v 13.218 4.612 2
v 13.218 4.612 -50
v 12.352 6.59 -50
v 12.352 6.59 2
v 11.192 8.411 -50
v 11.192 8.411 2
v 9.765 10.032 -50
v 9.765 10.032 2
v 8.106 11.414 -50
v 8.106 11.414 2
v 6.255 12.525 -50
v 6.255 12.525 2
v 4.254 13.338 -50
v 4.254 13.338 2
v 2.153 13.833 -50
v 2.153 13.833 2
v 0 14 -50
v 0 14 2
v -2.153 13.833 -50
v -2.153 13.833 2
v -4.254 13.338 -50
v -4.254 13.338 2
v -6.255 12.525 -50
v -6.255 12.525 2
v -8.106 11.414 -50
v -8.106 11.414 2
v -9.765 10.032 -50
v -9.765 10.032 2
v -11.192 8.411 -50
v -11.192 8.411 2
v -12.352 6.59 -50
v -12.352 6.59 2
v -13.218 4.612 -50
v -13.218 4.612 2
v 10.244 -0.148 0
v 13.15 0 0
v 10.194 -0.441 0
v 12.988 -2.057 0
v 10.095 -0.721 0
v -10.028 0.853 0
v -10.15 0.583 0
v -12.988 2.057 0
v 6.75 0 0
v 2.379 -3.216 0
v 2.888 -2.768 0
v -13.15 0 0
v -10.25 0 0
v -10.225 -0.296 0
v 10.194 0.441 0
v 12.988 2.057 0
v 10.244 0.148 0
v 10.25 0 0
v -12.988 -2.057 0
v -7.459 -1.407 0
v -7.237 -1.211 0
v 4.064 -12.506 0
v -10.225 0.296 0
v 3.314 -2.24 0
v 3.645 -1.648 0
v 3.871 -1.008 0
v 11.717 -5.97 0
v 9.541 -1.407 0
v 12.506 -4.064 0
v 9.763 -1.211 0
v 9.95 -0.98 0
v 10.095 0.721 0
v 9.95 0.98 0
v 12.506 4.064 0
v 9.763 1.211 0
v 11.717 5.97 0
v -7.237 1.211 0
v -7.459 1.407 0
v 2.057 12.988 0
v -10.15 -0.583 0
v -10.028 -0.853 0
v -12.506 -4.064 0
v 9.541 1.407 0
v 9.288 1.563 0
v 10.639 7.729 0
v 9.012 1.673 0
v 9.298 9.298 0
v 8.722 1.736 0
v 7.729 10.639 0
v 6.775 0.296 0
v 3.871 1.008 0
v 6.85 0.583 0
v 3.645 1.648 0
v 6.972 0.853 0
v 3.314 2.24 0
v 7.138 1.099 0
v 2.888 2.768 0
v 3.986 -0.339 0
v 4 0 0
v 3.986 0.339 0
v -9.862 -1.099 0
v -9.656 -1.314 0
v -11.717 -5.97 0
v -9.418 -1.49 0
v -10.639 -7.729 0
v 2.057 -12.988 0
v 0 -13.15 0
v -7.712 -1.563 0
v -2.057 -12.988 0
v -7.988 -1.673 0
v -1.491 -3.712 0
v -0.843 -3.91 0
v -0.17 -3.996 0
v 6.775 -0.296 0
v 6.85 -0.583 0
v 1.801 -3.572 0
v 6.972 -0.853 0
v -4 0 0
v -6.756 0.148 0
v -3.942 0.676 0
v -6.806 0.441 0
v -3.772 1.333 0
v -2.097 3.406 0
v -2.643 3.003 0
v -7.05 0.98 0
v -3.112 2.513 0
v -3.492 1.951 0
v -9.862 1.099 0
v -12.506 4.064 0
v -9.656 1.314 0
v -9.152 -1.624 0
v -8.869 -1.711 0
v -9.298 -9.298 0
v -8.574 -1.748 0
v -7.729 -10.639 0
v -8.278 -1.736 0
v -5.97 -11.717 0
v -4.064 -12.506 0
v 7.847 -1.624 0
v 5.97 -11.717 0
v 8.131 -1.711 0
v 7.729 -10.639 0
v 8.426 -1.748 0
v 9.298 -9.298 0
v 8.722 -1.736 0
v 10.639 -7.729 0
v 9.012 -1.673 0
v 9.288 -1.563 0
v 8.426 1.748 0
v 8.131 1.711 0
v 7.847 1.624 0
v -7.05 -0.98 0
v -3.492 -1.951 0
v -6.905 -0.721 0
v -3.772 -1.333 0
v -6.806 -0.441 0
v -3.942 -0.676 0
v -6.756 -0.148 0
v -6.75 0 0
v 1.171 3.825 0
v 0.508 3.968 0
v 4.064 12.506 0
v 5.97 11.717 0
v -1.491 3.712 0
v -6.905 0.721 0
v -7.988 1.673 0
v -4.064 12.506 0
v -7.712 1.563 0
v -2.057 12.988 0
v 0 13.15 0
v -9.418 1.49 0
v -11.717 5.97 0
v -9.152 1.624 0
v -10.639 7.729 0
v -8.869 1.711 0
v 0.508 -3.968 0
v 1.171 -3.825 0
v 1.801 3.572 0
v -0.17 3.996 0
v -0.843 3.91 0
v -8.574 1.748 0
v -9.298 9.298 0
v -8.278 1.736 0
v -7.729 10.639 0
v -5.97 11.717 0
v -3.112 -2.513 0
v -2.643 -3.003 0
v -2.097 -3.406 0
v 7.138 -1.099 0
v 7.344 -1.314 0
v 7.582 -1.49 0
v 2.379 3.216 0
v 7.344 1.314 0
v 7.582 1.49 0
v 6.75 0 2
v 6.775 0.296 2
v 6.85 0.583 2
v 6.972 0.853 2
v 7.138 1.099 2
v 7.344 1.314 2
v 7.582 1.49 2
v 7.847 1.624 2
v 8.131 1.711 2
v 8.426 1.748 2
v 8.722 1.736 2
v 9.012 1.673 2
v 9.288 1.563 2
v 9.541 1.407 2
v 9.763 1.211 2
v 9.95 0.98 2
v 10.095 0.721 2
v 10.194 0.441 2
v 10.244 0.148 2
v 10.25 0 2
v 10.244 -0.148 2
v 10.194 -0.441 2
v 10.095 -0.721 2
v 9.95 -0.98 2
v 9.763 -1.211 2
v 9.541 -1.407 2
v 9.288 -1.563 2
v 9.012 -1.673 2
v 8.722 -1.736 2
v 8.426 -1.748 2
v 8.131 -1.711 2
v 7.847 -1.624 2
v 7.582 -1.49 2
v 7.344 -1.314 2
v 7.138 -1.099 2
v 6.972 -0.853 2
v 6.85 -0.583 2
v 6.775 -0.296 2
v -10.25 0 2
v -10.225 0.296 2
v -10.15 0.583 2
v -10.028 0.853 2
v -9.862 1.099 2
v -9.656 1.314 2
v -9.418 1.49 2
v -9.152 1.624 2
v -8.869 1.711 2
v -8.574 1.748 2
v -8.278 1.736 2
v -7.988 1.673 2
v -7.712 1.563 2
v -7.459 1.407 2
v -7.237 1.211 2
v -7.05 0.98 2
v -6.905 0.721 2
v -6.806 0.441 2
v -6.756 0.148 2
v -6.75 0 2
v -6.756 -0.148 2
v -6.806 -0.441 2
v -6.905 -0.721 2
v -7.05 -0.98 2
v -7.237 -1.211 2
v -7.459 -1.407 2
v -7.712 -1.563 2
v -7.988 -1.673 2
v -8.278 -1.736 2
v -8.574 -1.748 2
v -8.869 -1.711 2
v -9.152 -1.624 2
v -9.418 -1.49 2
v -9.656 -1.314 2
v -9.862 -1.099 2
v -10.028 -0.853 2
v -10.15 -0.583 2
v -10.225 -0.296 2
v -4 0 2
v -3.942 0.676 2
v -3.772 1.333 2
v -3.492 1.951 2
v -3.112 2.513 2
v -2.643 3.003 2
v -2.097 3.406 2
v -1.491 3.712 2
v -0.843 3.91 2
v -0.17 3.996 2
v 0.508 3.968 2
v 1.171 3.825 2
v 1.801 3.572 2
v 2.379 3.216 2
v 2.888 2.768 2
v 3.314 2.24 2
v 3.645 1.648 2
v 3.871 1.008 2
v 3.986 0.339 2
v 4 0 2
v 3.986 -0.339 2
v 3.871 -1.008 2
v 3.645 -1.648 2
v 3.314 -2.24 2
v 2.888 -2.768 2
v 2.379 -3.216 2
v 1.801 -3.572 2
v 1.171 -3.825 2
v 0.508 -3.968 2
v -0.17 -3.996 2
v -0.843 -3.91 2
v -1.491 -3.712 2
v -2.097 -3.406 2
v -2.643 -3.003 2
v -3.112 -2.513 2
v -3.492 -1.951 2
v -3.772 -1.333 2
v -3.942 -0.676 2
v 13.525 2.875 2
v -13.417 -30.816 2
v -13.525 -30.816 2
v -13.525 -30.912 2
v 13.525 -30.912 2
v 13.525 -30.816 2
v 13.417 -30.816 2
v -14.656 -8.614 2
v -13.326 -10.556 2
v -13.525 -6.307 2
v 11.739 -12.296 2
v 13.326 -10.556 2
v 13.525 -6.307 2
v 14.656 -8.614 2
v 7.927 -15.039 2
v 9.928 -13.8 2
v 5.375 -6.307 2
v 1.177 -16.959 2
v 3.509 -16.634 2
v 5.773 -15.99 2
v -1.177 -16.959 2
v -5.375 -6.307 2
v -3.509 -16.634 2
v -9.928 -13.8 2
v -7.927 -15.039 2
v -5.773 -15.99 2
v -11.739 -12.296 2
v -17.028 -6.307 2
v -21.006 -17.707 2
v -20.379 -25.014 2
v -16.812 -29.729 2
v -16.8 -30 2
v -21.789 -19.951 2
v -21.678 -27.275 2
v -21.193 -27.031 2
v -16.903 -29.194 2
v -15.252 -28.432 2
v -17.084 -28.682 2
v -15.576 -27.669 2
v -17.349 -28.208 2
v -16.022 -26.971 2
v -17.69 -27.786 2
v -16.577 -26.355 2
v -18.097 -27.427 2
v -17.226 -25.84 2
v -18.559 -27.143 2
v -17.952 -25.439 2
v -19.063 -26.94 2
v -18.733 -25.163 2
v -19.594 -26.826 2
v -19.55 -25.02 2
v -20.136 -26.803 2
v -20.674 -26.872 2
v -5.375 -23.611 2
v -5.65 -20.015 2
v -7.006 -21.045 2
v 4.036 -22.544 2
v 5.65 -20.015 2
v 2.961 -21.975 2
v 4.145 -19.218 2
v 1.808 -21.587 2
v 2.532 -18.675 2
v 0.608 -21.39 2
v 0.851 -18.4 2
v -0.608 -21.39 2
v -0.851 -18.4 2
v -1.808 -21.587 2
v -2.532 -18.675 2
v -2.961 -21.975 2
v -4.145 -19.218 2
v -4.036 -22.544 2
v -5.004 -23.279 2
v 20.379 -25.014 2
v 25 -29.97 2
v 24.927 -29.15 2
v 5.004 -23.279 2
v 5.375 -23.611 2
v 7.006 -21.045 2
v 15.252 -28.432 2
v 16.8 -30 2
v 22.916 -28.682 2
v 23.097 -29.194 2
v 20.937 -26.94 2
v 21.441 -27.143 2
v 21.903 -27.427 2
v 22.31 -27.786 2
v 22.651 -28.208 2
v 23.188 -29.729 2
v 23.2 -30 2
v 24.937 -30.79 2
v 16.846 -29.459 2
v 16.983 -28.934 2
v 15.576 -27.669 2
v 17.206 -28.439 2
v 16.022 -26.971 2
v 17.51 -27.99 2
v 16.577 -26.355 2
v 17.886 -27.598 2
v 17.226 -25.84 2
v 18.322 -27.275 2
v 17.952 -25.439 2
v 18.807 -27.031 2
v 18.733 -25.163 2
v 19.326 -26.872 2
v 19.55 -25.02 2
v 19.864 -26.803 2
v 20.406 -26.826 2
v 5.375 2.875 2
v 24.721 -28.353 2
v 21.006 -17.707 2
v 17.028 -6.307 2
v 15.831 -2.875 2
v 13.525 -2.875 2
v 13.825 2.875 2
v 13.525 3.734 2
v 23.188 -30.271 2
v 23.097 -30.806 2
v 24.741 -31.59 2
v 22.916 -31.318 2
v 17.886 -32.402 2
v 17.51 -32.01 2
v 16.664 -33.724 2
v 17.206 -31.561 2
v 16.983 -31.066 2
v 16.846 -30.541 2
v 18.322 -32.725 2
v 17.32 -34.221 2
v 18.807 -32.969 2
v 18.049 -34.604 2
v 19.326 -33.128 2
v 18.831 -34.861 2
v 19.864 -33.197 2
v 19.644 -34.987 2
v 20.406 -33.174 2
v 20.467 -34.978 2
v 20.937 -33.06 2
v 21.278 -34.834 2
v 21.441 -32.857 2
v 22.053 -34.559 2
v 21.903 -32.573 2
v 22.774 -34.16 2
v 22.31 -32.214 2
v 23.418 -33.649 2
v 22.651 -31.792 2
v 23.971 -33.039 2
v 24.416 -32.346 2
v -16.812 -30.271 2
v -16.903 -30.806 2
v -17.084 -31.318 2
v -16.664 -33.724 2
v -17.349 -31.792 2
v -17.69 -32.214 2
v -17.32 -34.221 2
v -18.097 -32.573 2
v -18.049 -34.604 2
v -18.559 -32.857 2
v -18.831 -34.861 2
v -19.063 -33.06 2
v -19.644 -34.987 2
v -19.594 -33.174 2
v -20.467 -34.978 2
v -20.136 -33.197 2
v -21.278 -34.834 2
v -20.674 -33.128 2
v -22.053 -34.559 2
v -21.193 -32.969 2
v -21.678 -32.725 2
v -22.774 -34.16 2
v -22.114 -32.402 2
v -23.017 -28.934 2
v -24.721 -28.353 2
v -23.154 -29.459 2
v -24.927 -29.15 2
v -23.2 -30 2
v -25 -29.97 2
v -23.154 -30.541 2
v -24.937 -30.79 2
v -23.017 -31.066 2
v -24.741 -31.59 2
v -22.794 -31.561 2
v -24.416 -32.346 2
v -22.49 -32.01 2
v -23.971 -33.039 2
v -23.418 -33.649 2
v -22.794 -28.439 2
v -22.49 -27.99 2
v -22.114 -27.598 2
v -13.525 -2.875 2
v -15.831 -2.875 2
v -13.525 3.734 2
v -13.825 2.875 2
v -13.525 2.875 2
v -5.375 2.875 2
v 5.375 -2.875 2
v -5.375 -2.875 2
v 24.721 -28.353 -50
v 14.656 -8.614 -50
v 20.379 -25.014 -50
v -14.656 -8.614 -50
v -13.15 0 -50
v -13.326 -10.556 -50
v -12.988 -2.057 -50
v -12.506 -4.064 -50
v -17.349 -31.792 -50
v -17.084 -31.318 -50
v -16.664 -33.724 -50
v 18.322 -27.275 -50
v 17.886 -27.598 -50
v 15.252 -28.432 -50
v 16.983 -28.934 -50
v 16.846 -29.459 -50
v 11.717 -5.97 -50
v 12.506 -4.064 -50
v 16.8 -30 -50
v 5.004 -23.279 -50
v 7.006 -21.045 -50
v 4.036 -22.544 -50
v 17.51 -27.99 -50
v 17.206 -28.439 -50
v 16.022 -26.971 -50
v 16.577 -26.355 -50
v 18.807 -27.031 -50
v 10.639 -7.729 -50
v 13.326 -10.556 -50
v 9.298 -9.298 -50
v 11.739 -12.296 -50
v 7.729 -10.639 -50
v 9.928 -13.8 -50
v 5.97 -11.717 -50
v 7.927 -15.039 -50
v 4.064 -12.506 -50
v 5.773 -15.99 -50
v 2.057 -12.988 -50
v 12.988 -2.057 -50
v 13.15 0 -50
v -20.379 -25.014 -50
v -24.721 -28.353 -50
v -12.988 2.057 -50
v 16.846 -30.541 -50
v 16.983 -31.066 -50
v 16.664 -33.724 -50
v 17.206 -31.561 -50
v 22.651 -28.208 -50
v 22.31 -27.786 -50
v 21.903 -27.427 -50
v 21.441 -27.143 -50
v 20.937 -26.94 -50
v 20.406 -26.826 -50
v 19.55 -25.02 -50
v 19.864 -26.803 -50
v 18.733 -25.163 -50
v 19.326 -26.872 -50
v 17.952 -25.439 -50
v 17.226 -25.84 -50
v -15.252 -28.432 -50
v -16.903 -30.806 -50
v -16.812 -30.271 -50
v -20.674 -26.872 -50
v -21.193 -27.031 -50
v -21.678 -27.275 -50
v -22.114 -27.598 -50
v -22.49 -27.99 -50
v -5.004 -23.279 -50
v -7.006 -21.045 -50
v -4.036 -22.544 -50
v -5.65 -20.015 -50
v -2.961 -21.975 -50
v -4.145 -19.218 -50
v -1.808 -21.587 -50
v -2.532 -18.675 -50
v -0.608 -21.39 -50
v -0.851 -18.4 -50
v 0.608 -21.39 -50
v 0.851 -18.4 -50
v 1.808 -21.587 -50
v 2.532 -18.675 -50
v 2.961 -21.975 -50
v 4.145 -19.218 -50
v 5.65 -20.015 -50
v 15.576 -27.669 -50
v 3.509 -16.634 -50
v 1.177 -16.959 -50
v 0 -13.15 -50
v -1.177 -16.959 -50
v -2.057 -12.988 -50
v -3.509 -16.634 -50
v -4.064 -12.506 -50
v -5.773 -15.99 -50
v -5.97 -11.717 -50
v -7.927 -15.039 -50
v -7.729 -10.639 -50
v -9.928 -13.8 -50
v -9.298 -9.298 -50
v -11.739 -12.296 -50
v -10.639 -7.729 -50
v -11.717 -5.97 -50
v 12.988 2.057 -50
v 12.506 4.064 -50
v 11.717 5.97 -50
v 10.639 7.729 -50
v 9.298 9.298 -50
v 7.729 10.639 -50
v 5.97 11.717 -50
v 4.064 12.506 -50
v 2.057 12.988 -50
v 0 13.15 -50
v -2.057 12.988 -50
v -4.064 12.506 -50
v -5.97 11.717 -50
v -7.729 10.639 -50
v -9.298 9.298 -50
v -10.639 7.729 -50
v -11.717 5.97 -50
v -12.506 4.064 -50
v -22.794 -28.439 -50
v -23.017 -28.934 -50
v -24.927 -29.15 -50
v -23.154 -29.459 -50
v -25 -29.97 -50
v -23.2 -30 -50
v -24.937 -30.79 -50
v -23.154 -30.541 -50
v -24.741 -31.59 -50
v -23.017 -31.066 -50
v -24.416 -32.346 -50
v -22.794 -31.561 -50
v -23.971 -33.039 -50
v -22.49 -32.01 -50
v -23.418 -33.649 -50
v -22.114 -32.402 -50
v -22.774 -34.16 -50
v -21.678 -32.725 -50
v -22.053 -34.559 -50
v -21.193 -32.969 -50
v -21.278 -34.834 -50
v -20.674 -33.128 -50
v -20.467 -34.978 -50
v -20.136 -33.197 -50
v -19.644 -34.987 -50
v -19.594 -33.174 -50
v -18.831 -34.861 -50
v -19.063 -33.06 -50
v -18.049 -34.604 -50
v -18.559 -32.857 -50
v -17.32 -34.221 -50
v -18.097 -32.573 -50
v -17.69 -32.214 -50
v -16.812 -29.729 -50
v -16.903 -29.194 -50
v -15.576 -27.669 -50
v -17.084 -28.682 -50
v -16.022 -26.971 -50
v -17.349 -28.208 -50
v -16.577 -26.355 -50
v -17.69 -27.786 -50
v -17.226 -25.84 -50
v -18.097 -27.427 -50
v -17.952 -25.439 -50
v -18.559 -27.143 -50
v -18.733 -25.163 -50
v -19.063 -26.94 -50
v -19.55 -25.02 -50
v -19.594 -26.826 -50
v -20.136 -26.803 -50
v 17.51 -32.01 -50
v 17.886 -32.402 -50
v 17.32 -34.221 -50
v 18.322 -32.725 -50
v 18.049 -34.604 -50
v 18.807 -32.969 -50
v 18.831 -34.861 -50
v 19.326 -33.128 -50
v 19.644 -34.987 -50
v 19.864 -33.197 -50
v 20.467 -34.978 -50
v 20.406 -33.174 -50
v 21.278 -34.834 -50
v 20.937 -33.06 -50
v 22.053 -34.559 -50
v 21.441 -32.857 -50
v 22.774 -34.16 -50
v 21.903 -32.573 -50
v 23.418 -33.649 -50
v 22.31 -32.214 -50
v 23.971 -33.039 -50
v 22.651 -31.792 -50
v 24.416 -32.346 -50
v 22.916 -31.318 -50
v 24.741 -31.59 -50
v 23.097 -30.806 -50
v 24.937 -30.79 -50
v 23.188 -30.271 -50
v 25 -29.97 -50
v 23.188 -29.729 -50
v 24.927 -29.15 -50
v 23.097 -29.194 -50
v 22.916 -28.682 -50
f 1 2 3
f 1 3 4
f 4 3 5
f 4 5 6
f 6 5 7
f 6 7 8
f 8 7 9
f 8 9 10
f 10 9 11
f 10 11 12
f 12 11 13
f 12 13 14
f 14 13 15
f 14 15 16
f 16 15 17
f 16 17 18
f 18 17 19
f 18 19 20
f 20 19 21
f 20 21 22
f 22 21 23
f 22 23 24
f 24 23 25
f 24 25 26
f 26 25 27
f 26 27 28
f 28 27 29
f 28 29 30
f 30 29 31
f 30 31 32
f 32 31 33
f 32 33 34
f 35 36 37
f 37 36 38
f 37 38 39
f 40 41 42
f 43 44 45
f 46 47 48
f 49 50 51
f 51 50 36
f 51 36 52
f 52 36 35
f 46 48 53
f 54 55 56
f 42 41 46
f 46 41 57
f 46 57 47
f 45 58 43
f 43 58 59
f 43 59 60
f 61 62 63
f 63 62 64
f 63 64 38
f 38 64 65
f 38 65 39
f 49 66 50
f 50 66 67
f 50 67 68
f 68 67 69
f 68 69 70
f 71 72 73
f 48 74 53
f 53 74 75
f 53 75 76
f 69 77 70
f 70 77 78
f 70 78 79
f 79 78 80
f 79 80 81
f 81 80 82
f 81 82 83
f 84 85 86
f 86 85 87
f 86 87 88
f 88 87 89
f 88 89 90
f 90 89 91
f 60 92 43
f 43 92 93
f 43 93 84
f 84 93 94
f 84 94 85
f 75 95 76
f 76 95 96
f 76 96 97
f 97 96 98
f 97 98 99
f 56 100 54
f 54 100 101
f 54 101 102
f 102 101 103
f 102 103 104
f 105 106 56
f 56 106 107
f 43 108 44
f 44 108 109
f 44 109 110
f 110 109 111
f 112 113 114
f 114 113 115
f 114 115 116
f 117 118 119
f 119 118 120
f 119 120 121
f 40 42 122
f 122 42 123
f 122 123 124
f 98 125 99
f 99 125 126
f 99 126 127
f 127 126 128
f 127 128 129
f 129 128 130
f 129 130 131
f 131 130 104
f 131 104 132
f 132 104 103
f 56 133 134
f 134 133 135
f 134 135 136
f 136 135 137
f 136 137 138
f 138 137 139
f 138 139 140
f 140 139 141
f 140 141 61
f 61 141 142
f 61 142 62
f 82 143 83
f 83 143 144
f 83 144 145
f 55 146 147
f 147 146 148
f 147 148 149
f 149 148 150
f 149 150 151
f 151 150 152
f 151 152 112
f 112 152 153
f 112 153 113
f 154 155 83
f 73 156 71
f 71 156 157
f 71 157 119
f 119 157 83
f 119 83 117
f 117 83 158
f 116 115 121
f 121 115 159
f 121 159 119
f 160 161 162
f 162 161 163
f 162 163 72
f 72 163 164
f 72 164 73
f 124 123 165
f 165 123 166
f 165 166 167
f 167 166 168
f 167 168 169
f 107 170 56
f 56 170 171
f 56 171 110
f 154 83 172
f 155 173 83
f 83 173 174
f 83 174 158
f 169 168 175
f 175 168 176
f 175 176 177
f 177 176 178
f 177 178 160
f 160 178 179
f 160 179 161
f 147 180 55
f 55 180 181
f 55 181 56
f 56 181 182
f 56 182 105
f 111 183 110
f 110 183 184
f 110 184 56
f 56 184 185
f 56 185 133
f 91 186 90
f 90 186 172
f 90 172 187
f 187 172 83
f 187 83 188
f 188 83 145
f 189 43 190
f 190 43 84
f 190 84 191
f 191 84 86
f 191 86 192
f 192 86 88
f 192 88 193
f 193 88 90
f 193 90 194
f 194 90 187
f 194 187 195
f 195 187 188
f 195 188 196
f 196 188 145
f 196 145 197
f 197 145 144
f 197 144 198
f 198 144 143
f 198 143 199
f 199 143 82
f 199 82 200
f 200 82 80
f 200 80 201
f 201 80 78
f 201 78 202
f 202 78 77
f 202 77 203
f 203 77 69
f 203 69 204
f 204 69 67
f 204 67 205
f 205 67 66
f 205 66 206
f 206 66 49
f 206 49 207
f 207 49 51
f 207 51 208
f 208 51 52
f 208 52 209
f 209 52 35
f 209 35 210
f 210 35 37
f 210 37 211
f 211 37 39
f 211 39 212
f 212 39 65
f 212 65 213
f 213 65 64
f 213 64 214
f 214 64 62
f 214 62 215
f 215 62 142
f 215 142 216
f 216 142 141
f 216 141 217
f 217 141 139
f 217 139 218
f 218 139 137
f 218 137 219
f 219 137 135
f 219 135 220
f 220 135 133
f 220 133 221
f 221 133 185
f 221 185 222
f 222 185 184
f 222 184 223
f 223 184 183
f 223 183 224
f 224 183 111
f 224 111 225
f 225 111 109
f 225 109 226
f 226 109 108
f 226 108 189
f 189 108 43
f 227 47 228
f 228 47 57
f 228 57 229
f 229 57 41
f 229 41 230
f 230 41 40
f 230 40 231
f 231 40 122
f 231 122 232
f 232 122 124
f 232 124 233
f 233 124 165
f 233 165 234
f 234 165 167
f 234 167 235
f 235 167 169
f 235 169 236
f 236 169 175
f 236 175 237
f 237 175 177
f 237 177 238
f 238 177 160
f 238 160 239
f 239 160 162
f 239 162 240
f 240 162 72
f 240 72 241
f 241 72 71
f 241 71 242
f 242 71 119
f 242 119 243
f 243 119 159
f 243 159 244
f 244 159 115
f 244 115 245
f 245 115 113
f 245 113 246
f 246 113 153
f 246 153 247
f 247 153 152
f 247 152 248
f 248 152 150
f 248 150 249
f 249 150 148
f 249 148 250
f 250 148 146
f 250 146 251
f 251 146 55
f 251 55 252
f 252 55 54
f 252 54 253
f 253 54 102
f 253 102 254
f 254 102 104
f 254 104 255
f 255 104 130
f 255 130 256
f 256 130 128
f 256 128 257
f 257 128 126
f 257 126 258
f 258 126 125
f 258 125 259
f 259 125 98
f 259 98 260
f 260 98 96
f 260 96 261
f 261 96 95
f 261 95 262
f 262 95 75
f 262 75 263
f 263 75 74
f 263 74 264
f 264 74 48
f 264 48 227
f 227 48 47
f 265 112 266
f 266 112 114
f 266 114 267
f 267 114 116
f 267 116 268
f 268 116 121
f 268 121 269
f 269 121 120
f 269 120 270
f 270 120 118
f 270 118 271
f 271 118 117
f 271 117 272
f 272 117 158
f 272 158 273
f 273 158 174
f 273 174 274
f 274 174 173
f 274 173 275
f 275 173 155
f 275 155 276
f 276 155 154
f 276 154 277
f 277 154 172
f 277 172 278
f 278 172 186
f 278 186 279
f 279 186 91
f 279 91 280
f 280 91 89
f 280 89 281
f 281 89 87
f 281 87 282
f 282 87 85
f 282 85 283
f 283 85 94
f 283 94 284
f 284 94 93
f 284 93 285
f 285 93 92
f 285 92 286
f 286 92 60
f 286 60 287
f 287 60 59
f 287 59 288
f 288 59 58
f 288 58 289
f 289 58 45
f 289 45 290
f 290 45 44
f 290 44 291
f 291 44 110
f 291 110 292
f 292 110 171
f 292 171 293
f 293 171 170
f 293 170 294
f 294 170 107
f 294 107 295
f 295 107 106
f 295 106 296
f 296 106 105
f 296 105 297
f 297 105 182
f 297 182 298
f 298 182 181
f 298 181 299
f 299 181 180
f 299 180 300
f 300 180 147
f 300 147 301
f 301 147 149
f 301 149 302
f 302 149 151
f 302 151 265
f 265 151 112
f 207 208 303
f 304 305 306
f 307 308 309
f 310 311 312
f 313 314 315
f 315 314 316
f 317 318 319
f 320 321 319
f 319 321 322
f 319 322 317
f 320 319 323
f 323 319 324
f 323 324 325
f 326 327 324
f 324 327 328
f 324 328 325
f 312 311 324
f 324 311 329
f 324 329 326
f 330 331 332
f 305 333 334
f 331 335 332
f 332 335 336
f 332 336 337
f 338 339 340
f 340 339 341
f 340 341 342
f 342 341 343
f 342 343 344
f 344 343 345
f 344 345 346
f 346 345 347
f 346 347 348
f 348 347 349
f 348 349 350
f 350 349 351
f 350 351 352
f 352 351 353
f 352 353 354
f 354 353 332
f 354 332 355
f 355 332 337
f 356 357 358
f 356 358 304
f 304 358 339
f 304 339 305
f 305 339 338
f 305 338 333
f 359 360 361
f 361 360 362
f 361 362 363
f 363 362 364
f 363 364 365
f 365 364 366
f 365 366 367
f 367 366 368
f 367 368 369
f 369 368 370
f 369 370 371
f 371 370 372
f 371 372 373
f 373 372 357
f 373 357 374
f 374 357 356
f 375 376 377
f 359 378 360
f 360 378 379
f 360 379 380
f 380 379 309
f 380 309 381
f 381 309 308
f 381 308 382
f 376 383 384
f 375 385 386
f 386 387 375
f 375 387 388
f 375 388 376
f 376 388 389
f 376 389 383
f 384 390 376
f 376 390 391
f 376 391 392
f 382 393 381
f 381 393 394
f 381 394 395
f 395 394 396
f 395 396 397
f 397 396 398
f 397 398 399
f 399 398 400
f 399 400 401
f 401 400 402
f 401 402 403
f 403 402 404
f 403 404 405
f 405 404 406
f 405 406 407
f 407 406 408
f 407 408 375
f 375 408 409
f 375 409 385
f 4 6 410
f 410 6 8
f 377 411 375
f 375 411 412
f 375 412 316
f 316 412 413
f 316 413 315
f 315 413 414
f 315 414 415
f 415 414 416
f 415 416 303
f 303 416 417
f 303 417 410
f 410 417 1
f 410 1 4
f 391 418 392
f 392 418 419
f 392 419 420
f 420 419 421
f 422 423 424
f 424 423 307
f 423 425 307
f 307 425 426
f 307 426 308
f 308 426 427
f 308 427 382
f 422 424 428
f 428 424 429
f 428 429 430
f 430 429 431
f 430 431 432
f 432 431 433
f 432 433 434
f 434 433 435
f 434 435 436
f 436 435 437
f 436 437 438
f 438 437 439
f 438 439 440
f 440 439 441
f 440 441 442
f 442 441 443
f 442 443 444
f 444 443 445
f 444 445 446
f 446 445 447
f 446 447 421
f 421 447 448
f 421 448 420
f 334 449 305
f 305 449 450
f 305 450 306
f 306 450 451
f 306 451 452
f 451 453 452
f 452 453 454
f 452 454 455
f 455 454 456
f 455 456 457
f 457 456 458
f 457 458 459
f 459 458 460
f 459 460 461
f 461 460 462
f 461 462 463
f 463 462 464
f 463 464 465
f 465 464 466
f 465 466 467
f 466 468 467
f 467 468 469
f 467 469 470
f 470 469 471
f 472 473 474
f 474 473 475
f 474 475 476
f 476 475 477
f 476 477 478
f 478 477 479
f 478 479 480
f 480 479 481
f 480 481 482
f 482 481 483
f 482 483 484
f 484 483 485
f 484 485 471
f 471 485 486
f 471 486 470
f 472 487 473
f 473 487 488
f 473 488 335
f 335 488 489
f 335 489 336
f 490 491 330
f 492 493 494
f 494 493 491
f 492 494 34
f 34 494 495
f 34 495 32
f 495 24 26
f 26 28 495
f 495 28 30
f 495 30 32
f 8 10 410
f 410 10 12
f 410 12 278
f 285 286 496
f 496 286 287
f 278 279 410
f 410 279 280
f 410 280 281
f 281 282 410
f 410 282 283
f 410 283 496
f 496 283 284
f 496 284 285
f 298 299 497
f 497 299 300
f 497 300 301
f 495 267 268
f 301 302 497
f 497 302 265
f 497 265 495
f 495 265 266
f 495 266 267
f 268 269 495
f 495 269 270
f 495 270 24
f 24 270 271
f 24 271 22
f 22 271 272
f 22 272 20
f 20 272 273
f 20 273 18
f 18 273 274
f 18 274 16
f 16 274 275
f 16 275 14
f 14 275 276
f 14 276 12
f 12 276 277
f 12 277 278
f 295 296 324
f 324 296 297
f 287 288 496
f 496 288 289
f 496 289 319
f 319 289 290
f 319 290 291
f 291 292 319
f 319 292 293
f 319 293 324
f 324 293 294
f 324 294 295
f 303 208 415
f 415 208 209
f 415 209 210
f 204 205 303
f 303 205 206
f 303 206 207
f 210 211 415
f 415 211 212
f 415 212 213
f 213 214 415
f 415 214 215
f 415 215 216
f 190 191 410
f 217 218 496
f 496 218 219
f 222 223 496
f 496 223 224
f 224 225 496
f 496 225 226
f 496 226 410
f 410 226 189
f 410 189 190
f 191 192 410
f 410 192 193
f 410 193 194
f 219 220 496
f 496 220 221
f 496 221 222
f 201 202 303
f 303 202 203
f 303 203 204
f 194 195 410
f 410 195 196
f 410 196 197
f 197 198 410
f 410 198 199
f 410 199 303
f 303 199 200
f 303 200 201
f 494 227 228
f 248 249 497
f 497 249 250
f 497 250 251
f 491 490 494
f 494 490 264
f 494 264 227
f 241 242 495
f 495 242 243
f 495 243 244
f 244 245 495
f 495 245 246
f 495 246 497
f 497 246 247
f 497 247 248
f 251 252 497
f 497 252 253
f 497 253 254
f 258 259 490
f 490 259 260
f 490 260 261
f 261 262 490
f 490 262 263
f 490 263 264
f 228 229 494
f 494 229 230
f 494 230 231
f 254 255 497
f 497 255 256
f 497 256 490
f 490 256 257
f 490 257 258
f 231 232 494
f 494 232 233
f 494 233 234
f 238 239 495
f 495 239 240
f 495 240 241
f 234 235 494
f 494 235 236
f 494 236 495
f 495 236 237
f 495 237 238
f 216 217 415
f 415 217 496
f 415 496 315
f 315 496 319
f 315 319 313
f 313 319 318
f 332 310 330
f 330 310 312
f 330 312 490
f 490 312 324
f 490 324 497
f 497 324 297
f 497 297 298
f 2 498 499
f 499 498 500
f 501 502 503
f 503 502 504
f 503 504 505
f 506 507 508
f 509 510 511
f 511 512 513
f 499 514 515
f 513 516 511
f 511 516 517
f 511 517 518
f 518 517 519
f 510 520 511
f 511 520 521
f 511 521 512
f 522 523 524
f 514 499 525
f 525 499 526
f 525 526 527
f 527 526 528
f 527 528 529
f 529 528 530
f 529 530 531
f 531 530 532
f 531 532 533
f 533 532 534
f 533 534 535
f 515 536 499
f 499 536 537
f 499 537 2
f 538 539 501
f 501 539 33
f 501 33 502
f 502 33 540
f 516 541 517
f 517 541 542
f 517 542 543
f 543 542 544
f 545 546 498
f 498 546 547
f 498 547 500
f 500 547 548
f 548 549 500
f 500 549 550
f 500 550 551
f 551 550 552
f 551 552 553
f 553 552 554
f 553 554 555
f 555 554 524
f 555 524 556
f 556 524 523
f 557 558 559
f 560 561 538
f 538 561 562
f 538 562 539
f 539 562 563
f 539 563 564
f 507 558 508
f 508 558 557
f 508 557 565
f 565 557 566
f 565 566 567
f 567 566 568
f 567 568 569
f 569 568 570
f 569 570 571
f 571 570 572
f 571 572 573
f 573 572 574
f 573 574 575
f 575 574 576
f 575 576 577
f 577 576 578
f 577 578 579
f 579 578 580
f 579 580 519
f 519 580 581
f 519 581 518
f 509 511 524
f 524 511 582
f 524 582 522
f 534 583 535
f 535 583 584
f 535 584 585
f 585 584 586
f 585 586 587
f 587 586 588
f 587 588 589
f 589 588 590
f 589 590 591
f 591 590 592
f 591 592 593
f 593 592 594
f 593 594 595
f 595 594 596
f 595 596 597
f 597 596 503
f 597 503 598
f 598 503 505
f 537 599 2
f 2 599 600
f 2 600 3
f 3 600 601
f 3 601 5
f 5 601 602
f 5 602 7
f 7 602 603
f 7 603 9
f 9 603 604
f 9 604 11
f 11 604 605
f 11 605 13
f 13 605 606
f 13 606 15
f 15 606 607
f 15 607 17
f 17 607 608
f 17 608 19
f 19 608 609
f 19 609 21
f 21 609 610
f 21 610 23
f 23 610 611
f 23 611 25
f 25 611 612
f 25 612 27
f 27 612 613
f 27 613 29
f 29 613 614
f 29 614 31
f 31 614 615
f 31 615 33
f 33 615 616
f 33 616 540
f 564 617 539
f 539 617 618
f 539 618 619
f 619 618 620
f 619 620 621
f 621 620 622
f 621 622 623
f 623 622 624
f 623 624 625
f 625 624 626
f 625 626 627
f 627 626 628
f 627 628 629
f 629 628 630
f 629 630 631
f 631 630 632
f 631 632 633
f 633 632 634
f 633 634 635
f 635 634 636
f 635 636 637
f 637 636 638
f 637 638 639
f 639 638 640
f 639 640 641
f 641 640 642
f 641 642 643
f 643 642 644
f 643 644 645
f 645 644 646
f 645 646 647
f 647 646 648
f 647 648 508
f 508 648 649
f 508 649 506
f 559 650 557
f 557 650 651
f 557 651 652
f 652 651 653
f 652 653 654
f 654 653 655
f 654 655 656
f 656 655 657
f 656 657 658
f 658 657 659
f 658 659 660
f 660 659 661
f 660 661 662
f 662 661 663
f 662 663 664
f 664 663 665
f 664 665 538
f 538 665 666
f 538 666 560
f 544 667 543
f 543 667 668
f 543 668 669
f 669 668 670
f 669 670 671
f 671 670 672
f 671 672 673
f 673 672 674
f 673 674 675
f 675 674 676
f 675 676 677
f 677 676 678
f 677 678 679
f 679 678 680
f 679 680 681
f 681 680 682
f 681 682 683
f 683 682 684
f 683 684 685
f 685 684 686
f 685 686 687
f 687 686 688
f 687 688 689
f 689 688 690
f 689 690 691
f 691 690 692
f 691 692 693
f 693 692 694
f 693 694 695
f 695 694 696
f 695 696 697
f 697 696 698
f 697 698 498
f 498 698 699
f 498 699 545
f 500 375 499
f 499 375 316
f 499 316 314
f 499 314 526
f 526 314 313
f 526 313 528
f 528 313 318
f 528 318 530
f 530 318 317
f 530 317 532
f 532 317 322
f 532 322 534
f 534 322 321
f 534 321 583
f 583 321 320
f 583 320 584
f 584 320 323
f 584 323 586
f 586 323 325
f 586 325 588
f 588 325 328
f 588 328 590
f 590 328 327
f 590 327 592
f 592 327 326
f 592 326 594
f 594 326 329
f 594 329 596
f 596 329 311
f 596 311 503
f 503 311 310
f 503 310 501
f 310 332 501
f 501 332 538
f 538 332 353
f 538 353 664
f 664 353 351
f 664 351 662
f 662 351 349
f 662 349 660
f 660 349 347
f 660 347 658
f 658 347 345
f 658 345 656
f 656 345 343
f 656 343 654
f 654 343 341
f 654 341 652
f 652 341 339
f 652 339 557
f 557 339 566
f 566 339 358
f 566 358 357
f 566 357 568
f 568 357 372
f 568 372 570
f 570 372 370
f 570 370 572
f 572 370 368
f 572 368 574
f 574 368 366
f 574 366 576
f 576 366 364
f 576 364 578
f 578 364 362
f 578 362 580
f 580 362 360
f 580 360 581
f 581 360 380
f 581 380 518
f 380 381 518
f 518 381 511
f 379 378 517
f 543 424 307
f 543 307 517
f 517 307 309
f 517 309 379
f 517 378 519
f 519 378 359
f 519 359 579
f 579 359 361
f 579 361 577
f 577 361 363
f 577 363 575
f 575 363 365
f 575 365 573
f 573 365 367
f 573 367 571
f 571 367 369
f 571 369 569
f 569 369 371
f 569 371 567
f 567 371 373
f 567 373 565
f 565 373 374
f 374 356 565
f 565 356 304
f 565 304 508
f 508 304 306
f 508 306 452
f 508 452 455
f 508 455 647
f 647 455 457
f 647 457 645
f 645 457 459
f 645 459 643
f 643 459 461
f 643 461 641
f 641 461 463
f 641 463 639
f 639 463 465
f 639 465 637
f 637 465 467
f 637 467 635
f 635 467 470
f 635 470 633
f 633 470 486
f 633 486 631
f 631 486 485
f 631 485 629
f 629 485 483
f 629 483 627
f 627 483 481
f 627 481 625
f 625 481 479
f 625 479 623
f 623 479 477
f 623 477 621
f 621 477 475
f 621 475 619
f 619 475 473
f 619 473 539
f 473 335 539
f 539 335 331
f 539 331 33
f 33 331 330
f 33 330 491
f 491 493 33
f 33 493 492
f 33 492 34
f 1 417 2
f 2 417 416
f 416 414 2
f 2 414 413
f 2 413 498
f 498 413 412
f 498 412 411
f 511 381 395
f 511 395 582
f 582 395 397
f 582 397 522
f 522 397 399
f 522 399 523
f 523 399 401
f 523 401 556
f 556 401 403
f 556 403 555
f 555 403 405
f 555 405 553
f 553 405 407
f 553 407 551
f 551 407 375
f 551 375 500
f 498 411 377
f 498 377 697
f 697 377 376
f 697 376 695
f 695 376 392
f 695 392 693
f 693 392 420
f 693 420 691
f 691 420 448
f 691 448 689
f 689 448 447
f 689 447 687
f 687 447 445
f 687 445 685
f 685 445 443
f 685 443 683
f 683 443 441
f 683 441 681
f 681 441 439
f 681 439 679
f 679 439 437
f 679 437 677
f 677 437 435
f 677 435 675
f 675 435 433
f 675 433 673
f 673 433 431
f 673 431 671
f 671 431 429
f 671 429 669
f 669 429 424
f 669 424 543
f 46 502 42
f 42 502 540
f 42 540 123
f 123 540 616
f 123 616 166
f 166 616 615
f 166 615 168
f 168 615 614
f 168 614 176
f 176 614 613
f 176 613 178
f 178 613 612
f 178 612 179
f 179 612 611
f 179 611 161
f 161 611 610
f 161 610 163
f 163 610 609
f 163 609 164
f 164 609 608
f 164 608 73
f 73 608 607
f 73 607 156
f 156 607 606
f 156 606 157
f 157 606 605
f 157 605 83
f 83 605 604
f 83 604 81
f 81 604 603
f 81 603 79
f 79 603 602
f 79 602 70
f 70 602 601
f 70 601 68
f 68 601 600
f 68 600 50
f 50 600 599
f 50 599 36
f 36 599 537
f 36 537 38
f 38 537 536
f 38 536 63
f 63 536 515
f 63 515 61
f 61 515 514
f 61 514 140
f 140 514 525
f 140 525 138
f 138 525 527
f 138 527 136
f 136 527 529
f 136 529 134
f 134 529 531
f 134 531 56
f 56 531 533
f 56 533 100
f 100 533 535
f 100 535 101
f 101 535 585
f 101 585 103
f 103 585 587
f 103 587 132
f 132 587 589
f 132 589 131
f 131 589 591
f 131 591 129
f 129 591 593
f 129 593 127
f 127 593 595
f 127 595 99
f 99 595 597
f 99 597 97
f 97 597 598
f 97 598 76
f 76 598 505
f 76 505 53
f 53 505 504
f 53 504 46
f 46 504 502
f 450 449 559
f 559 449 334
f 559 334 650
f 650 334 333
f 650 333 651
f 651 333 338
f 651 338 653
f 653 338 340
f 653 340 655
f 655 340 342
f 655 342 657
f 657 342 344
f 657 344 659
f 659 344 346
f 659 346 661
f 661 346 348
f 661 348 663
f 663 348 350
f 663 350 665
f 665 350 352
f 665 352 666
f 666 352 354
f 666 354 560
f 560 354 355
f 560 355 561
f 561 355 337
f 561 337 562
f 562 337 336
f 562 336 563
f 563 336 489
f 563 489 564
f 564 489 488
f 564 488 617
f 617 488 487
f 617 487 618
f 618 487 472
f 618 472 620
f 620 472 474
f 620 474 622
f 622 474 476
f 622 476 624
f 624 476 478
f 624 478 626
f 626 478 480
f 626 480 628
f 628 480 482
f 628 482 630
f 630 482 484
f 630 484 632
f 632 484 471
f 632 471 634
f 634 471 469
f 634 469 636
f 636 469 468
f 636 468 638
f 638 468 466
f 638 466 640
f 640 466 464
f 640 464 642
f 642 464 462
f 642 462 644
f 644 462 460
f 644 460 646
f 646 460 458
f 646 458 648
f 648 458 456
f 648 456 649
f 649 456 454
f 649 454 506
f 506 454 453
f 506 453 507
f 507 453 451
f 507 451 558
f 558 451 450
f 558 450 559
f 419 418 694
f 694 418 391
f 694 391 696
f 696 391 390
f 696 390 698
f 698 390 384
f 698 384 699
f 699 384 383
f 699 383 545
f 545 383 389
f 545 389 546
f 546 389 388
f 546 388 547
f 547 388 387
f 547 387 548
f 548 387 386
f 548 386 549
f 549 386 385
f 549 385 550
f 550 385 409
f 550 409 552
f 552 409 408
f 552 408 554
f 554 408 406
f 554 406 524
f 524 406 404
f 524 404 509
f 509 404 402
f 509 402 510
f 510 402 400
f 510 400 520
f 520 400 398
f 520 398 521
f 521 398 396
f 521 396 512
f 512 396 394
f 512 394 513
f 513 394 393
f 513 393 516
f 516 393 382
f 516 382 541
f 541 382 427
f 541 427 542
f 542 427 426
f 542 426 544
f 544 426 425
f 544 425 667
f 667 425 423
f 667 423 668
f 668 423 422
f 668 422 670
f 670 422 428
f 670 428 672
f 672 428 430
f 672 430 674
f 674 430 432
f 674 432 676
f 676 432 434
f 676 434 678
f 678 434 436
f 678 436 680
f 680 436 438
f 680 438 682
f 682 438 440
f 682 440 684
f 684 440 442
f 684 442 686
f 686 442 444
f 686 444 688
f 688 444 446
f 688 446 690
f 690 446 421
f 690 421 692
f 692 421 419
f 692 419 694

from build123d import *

# Parameters (mm, degrees)
SKETCH3_R           = 14
SKETCH3_R_2         = 1.75
SKETCH3_R_3         = 4
BOSS_EXTRUDE1_DEPTH = 2
BOSS_EXTRUDE2_START = 50
SKETCH4_R           = 14
SKETCH4_R_2         = 12.65
BOSS_EXTRUDE2_DEPTH = 50
BOSS_EXTRUDE3_START = -52
SKETCH5_R           = 3
BOSS_EXTRUDE3_DEPTH = 52
SKETCH6_R           = 13.15
CUT_EXTRUDE1_DEPTH  = 50
SKETCH8_R           = 3.2
SKETCH8_R_2         = 3
CUT_EXTRUDE2_DEPTH  = 52


with BuildPart() as part:
    # Sketch3 → Boss-Extrude1 (new body)
    with BuildSketch(Plane.XY):
        Circle(SKETCH3_R)
        with Locations((8.5, 0)):
            Circle(SKETCH3_R_2, mode=Mode.SUBTRACT)
        with Locations((-8.5, 0)):
            Circle(SKETCH3_R_2, mode=Mode.SUBTRACT)
        Circle(SKETCH3_R_3, mode=Mode.SUBTRACT)
    extrude(amount=BOSS_EXTRUDE1_DEPTH)

    # Sketch4 → Boss-Extrude2 (add)
    with BuildSketch(Plane(origin=(0, 0, 0), x_dir=(-1, 0, 0), z_dir=(0, 0, -1)).offset(BOSS_EXTRUDE2_START)):
        Circle(SKETCH4_R)
        Circle(SKETCH4_R_2, mode=Mode.SUBTRACT)
    extrude(amount=-BOSS_EXTRUDE2_DEPTH)

    # Sketch5 → Boss-Extrude3 (add)
    # profile 1 of 4: a face of its own
    with BuildSketch(Plane.XY.offset(2).offset(BOSS_EXTRUDE3_START)):
        with BuildLine():
            Line((24.720866981, -28.352755346), (13.218427546, 4.612285031))
            ThreePointArc((13.218427546, 4.612285031), (13.803224001, 2.339018422), (14, 0))
            ThreePointArc((14, 0), (-2.339018422, -13.803224001), (-13.218427546, 4.612285031))
            Line((-13.218427546, 4.612285031), (-24.720866981, -28.352755346))
            ThreePointArc((-24.720866981, -28.352755346), (-23.047527639, -26.036090908), (-20.378622129, -25.014356081))
            Line((-20.378622129, -25.014356081), (-14.656053545, -8.613947671))
            ThreePointArc((-14.656053545, -8.613947671), (0, -17), (14.656053545, -8.613947671))
            Line((14.656053545, -8.613947671), (20.378622129, -25.014356081))
            ThreePointArc((20.378622129, -25.014356081), (23.047527639, -26.036090908), (24.720866981, -28.352755346))
        make_face()
    # profile 2 of 4: a face of its own
    with BuildSketch(Plane.XY.offset(2).offset(BOSS_EXTRUDE3_START)):
        with BuildLine():
            Line((5.004377394, -23.279258169), (16.663748404, -33.724167731))
            ThreePointArc((16.663748404, -33.724167731), (15.168880977, -31.288522016), (15.252243256, -28.431941997))
            Line((15.252243256, -28.431941997), (7.006128352, -21.044757531))
            ThreePointArc((7.006128352, -21.044757531), (0, -18.365509765), (-7.006128352, -21.044757531))
            Line((-7.006128352, -21.044757531), (-15.252243256, -28.431941997))
            ThreePointArc((-15.252243256, -28.431941997), (-15.063463577, -29.205891607), (-15, -30))
            ThreePointArc((-15, -30), (-15.434846225, -32.039453606), (-16.663748404, -33.724167731))
            Line((-16.663748404, -33.724167731), (-5.004377394, -23.279258169))
            ThreePointArc((-5.004377394, -23.279258169), (0, -21.365509765), (5.004377394, -23.279258169))
        make_face()
    # profile 3 of 4: a face of its own
    with BuildSketch(Plane.XY.offset(2).offset(BOSS_EXTRUDE3_START)):
        with BuildLine():
            ThreePointArc((-20.378622129, -25.014356081), (-23.047527639, -26.036090908), (-24.720866981, -28.352755346))
            ThreePointArc((-24.720866981, -28.352755346), (-22.773500981, -34.160251472), (-16.663748404, -33.724167731))
            ThreePointArc((-16.663748404, -33.724167731), (-15.434846225, -32.039453606), (-15, -30))
            ThreePointArc((-15, -30), (-15.063463577, -29.205891607), (-15.252243256, -28.431941997))
            ThreePointArc((-15.252243256, -28.431941997), (-17.226499019, -25.839748528), (-20.378622129, -25.014356081))
        make_face()
        with Locations((-20, -30)):
            Circle(SKETCH5_R, mode=Mode.SUBTRACT)
    # profile 4 of 4: a face of its own
    with BuildSketch(Plane.XY.offset(2).offset(BOSS_EXTRUDE3_START)):
        with BuildLine():
            ThreePointArc((25, -30), (24.929722858, -29.164636278), (24.720866981, -28.352755346))
            ThreePointArc((24.720866981, -28.352755346), (23.047527639, -26.036090908), (20.378622129, -25.014356081))
            ThreePointArc((20.378622129, -25.014356081), (17.226499019, -25.839748528), (15.252243256, -28.431941997))
            ThreePointArc((15.252243256, -28.431941997), (15.168880977, -31.288522016), (16.663748404, -33.724167731))
            ThreePointArc((16.663748404, -33.724167731), (22.039453606, -34.565153775), (25, -30))
        make_face()
        with Locations((20, -30)):
            Circle(SKETCH5_R, mode=Mode.SUBTRACT)
    extrude(amount=BOSS_EXTRUDE3_DEPTH)

    # Sketch6 → Cut-Extrude1 (cut)
    with BuildSketch(Plane(origin=(0, 0, -50), x_dir=(-1, 0, 0), z_dir=(0, 0, -1))):
        Circle(SKETCH6_R)
    extrude(amount=-CUT_EXTRUDE1_DEPTH, mode=Mode.SUBTRACT)

    # Sketch8 → Cut-Extrude2 (cut)
    # profile 1 of 4: a face of its own
    with BuildSketch(Plane(origin=(0, 0, -50), x_dir=(-1, 0, 0), z_dir=(0, 0, -1))):
        with Locations((20, -30)):
            Circle(SKETCH8_R)
        with Locations((20, -30)):
            Circle(SKETCH8_R_2, mode=Mode.SUBTRACT)
    # profile 2 of 4: a face of its own
    with BuildSketch(Plane(origin=(0, 0, -50), x_dir=(-1, 0, 0), z_dir=(0, 0, -1))):
        with Locations((-20, -30)):
            Circle(SKETCH8_R)
        with Locations((-20, -30)):
            Circle(SKETCH8_R_2, mode=Mode.SUBTRACT)
    # profile 3 of 4: a face of its own
    with BuildSketch(Plane(origin=(0, 0, -50), x_dir=(-1, 0, 0), z_dir=(0, 0, -1))):
        with Locations((20, -30)):
            Circle(SKETCH8_R_2)
    # profile 4 of 4: a face of its own
    with BuildSketch(Plane(origin=(0, 0, -50), x_dir=(-1, 0, 0), z_dir=(0, 0, -1))):
        with Locations((-20, -30)):
            Circle(SKETCH8_R_2)
    extrude(amount=-CUT_EXTRUDE2_DEPTH, mode=Mode.SUBTRACT)


solid = part.part
